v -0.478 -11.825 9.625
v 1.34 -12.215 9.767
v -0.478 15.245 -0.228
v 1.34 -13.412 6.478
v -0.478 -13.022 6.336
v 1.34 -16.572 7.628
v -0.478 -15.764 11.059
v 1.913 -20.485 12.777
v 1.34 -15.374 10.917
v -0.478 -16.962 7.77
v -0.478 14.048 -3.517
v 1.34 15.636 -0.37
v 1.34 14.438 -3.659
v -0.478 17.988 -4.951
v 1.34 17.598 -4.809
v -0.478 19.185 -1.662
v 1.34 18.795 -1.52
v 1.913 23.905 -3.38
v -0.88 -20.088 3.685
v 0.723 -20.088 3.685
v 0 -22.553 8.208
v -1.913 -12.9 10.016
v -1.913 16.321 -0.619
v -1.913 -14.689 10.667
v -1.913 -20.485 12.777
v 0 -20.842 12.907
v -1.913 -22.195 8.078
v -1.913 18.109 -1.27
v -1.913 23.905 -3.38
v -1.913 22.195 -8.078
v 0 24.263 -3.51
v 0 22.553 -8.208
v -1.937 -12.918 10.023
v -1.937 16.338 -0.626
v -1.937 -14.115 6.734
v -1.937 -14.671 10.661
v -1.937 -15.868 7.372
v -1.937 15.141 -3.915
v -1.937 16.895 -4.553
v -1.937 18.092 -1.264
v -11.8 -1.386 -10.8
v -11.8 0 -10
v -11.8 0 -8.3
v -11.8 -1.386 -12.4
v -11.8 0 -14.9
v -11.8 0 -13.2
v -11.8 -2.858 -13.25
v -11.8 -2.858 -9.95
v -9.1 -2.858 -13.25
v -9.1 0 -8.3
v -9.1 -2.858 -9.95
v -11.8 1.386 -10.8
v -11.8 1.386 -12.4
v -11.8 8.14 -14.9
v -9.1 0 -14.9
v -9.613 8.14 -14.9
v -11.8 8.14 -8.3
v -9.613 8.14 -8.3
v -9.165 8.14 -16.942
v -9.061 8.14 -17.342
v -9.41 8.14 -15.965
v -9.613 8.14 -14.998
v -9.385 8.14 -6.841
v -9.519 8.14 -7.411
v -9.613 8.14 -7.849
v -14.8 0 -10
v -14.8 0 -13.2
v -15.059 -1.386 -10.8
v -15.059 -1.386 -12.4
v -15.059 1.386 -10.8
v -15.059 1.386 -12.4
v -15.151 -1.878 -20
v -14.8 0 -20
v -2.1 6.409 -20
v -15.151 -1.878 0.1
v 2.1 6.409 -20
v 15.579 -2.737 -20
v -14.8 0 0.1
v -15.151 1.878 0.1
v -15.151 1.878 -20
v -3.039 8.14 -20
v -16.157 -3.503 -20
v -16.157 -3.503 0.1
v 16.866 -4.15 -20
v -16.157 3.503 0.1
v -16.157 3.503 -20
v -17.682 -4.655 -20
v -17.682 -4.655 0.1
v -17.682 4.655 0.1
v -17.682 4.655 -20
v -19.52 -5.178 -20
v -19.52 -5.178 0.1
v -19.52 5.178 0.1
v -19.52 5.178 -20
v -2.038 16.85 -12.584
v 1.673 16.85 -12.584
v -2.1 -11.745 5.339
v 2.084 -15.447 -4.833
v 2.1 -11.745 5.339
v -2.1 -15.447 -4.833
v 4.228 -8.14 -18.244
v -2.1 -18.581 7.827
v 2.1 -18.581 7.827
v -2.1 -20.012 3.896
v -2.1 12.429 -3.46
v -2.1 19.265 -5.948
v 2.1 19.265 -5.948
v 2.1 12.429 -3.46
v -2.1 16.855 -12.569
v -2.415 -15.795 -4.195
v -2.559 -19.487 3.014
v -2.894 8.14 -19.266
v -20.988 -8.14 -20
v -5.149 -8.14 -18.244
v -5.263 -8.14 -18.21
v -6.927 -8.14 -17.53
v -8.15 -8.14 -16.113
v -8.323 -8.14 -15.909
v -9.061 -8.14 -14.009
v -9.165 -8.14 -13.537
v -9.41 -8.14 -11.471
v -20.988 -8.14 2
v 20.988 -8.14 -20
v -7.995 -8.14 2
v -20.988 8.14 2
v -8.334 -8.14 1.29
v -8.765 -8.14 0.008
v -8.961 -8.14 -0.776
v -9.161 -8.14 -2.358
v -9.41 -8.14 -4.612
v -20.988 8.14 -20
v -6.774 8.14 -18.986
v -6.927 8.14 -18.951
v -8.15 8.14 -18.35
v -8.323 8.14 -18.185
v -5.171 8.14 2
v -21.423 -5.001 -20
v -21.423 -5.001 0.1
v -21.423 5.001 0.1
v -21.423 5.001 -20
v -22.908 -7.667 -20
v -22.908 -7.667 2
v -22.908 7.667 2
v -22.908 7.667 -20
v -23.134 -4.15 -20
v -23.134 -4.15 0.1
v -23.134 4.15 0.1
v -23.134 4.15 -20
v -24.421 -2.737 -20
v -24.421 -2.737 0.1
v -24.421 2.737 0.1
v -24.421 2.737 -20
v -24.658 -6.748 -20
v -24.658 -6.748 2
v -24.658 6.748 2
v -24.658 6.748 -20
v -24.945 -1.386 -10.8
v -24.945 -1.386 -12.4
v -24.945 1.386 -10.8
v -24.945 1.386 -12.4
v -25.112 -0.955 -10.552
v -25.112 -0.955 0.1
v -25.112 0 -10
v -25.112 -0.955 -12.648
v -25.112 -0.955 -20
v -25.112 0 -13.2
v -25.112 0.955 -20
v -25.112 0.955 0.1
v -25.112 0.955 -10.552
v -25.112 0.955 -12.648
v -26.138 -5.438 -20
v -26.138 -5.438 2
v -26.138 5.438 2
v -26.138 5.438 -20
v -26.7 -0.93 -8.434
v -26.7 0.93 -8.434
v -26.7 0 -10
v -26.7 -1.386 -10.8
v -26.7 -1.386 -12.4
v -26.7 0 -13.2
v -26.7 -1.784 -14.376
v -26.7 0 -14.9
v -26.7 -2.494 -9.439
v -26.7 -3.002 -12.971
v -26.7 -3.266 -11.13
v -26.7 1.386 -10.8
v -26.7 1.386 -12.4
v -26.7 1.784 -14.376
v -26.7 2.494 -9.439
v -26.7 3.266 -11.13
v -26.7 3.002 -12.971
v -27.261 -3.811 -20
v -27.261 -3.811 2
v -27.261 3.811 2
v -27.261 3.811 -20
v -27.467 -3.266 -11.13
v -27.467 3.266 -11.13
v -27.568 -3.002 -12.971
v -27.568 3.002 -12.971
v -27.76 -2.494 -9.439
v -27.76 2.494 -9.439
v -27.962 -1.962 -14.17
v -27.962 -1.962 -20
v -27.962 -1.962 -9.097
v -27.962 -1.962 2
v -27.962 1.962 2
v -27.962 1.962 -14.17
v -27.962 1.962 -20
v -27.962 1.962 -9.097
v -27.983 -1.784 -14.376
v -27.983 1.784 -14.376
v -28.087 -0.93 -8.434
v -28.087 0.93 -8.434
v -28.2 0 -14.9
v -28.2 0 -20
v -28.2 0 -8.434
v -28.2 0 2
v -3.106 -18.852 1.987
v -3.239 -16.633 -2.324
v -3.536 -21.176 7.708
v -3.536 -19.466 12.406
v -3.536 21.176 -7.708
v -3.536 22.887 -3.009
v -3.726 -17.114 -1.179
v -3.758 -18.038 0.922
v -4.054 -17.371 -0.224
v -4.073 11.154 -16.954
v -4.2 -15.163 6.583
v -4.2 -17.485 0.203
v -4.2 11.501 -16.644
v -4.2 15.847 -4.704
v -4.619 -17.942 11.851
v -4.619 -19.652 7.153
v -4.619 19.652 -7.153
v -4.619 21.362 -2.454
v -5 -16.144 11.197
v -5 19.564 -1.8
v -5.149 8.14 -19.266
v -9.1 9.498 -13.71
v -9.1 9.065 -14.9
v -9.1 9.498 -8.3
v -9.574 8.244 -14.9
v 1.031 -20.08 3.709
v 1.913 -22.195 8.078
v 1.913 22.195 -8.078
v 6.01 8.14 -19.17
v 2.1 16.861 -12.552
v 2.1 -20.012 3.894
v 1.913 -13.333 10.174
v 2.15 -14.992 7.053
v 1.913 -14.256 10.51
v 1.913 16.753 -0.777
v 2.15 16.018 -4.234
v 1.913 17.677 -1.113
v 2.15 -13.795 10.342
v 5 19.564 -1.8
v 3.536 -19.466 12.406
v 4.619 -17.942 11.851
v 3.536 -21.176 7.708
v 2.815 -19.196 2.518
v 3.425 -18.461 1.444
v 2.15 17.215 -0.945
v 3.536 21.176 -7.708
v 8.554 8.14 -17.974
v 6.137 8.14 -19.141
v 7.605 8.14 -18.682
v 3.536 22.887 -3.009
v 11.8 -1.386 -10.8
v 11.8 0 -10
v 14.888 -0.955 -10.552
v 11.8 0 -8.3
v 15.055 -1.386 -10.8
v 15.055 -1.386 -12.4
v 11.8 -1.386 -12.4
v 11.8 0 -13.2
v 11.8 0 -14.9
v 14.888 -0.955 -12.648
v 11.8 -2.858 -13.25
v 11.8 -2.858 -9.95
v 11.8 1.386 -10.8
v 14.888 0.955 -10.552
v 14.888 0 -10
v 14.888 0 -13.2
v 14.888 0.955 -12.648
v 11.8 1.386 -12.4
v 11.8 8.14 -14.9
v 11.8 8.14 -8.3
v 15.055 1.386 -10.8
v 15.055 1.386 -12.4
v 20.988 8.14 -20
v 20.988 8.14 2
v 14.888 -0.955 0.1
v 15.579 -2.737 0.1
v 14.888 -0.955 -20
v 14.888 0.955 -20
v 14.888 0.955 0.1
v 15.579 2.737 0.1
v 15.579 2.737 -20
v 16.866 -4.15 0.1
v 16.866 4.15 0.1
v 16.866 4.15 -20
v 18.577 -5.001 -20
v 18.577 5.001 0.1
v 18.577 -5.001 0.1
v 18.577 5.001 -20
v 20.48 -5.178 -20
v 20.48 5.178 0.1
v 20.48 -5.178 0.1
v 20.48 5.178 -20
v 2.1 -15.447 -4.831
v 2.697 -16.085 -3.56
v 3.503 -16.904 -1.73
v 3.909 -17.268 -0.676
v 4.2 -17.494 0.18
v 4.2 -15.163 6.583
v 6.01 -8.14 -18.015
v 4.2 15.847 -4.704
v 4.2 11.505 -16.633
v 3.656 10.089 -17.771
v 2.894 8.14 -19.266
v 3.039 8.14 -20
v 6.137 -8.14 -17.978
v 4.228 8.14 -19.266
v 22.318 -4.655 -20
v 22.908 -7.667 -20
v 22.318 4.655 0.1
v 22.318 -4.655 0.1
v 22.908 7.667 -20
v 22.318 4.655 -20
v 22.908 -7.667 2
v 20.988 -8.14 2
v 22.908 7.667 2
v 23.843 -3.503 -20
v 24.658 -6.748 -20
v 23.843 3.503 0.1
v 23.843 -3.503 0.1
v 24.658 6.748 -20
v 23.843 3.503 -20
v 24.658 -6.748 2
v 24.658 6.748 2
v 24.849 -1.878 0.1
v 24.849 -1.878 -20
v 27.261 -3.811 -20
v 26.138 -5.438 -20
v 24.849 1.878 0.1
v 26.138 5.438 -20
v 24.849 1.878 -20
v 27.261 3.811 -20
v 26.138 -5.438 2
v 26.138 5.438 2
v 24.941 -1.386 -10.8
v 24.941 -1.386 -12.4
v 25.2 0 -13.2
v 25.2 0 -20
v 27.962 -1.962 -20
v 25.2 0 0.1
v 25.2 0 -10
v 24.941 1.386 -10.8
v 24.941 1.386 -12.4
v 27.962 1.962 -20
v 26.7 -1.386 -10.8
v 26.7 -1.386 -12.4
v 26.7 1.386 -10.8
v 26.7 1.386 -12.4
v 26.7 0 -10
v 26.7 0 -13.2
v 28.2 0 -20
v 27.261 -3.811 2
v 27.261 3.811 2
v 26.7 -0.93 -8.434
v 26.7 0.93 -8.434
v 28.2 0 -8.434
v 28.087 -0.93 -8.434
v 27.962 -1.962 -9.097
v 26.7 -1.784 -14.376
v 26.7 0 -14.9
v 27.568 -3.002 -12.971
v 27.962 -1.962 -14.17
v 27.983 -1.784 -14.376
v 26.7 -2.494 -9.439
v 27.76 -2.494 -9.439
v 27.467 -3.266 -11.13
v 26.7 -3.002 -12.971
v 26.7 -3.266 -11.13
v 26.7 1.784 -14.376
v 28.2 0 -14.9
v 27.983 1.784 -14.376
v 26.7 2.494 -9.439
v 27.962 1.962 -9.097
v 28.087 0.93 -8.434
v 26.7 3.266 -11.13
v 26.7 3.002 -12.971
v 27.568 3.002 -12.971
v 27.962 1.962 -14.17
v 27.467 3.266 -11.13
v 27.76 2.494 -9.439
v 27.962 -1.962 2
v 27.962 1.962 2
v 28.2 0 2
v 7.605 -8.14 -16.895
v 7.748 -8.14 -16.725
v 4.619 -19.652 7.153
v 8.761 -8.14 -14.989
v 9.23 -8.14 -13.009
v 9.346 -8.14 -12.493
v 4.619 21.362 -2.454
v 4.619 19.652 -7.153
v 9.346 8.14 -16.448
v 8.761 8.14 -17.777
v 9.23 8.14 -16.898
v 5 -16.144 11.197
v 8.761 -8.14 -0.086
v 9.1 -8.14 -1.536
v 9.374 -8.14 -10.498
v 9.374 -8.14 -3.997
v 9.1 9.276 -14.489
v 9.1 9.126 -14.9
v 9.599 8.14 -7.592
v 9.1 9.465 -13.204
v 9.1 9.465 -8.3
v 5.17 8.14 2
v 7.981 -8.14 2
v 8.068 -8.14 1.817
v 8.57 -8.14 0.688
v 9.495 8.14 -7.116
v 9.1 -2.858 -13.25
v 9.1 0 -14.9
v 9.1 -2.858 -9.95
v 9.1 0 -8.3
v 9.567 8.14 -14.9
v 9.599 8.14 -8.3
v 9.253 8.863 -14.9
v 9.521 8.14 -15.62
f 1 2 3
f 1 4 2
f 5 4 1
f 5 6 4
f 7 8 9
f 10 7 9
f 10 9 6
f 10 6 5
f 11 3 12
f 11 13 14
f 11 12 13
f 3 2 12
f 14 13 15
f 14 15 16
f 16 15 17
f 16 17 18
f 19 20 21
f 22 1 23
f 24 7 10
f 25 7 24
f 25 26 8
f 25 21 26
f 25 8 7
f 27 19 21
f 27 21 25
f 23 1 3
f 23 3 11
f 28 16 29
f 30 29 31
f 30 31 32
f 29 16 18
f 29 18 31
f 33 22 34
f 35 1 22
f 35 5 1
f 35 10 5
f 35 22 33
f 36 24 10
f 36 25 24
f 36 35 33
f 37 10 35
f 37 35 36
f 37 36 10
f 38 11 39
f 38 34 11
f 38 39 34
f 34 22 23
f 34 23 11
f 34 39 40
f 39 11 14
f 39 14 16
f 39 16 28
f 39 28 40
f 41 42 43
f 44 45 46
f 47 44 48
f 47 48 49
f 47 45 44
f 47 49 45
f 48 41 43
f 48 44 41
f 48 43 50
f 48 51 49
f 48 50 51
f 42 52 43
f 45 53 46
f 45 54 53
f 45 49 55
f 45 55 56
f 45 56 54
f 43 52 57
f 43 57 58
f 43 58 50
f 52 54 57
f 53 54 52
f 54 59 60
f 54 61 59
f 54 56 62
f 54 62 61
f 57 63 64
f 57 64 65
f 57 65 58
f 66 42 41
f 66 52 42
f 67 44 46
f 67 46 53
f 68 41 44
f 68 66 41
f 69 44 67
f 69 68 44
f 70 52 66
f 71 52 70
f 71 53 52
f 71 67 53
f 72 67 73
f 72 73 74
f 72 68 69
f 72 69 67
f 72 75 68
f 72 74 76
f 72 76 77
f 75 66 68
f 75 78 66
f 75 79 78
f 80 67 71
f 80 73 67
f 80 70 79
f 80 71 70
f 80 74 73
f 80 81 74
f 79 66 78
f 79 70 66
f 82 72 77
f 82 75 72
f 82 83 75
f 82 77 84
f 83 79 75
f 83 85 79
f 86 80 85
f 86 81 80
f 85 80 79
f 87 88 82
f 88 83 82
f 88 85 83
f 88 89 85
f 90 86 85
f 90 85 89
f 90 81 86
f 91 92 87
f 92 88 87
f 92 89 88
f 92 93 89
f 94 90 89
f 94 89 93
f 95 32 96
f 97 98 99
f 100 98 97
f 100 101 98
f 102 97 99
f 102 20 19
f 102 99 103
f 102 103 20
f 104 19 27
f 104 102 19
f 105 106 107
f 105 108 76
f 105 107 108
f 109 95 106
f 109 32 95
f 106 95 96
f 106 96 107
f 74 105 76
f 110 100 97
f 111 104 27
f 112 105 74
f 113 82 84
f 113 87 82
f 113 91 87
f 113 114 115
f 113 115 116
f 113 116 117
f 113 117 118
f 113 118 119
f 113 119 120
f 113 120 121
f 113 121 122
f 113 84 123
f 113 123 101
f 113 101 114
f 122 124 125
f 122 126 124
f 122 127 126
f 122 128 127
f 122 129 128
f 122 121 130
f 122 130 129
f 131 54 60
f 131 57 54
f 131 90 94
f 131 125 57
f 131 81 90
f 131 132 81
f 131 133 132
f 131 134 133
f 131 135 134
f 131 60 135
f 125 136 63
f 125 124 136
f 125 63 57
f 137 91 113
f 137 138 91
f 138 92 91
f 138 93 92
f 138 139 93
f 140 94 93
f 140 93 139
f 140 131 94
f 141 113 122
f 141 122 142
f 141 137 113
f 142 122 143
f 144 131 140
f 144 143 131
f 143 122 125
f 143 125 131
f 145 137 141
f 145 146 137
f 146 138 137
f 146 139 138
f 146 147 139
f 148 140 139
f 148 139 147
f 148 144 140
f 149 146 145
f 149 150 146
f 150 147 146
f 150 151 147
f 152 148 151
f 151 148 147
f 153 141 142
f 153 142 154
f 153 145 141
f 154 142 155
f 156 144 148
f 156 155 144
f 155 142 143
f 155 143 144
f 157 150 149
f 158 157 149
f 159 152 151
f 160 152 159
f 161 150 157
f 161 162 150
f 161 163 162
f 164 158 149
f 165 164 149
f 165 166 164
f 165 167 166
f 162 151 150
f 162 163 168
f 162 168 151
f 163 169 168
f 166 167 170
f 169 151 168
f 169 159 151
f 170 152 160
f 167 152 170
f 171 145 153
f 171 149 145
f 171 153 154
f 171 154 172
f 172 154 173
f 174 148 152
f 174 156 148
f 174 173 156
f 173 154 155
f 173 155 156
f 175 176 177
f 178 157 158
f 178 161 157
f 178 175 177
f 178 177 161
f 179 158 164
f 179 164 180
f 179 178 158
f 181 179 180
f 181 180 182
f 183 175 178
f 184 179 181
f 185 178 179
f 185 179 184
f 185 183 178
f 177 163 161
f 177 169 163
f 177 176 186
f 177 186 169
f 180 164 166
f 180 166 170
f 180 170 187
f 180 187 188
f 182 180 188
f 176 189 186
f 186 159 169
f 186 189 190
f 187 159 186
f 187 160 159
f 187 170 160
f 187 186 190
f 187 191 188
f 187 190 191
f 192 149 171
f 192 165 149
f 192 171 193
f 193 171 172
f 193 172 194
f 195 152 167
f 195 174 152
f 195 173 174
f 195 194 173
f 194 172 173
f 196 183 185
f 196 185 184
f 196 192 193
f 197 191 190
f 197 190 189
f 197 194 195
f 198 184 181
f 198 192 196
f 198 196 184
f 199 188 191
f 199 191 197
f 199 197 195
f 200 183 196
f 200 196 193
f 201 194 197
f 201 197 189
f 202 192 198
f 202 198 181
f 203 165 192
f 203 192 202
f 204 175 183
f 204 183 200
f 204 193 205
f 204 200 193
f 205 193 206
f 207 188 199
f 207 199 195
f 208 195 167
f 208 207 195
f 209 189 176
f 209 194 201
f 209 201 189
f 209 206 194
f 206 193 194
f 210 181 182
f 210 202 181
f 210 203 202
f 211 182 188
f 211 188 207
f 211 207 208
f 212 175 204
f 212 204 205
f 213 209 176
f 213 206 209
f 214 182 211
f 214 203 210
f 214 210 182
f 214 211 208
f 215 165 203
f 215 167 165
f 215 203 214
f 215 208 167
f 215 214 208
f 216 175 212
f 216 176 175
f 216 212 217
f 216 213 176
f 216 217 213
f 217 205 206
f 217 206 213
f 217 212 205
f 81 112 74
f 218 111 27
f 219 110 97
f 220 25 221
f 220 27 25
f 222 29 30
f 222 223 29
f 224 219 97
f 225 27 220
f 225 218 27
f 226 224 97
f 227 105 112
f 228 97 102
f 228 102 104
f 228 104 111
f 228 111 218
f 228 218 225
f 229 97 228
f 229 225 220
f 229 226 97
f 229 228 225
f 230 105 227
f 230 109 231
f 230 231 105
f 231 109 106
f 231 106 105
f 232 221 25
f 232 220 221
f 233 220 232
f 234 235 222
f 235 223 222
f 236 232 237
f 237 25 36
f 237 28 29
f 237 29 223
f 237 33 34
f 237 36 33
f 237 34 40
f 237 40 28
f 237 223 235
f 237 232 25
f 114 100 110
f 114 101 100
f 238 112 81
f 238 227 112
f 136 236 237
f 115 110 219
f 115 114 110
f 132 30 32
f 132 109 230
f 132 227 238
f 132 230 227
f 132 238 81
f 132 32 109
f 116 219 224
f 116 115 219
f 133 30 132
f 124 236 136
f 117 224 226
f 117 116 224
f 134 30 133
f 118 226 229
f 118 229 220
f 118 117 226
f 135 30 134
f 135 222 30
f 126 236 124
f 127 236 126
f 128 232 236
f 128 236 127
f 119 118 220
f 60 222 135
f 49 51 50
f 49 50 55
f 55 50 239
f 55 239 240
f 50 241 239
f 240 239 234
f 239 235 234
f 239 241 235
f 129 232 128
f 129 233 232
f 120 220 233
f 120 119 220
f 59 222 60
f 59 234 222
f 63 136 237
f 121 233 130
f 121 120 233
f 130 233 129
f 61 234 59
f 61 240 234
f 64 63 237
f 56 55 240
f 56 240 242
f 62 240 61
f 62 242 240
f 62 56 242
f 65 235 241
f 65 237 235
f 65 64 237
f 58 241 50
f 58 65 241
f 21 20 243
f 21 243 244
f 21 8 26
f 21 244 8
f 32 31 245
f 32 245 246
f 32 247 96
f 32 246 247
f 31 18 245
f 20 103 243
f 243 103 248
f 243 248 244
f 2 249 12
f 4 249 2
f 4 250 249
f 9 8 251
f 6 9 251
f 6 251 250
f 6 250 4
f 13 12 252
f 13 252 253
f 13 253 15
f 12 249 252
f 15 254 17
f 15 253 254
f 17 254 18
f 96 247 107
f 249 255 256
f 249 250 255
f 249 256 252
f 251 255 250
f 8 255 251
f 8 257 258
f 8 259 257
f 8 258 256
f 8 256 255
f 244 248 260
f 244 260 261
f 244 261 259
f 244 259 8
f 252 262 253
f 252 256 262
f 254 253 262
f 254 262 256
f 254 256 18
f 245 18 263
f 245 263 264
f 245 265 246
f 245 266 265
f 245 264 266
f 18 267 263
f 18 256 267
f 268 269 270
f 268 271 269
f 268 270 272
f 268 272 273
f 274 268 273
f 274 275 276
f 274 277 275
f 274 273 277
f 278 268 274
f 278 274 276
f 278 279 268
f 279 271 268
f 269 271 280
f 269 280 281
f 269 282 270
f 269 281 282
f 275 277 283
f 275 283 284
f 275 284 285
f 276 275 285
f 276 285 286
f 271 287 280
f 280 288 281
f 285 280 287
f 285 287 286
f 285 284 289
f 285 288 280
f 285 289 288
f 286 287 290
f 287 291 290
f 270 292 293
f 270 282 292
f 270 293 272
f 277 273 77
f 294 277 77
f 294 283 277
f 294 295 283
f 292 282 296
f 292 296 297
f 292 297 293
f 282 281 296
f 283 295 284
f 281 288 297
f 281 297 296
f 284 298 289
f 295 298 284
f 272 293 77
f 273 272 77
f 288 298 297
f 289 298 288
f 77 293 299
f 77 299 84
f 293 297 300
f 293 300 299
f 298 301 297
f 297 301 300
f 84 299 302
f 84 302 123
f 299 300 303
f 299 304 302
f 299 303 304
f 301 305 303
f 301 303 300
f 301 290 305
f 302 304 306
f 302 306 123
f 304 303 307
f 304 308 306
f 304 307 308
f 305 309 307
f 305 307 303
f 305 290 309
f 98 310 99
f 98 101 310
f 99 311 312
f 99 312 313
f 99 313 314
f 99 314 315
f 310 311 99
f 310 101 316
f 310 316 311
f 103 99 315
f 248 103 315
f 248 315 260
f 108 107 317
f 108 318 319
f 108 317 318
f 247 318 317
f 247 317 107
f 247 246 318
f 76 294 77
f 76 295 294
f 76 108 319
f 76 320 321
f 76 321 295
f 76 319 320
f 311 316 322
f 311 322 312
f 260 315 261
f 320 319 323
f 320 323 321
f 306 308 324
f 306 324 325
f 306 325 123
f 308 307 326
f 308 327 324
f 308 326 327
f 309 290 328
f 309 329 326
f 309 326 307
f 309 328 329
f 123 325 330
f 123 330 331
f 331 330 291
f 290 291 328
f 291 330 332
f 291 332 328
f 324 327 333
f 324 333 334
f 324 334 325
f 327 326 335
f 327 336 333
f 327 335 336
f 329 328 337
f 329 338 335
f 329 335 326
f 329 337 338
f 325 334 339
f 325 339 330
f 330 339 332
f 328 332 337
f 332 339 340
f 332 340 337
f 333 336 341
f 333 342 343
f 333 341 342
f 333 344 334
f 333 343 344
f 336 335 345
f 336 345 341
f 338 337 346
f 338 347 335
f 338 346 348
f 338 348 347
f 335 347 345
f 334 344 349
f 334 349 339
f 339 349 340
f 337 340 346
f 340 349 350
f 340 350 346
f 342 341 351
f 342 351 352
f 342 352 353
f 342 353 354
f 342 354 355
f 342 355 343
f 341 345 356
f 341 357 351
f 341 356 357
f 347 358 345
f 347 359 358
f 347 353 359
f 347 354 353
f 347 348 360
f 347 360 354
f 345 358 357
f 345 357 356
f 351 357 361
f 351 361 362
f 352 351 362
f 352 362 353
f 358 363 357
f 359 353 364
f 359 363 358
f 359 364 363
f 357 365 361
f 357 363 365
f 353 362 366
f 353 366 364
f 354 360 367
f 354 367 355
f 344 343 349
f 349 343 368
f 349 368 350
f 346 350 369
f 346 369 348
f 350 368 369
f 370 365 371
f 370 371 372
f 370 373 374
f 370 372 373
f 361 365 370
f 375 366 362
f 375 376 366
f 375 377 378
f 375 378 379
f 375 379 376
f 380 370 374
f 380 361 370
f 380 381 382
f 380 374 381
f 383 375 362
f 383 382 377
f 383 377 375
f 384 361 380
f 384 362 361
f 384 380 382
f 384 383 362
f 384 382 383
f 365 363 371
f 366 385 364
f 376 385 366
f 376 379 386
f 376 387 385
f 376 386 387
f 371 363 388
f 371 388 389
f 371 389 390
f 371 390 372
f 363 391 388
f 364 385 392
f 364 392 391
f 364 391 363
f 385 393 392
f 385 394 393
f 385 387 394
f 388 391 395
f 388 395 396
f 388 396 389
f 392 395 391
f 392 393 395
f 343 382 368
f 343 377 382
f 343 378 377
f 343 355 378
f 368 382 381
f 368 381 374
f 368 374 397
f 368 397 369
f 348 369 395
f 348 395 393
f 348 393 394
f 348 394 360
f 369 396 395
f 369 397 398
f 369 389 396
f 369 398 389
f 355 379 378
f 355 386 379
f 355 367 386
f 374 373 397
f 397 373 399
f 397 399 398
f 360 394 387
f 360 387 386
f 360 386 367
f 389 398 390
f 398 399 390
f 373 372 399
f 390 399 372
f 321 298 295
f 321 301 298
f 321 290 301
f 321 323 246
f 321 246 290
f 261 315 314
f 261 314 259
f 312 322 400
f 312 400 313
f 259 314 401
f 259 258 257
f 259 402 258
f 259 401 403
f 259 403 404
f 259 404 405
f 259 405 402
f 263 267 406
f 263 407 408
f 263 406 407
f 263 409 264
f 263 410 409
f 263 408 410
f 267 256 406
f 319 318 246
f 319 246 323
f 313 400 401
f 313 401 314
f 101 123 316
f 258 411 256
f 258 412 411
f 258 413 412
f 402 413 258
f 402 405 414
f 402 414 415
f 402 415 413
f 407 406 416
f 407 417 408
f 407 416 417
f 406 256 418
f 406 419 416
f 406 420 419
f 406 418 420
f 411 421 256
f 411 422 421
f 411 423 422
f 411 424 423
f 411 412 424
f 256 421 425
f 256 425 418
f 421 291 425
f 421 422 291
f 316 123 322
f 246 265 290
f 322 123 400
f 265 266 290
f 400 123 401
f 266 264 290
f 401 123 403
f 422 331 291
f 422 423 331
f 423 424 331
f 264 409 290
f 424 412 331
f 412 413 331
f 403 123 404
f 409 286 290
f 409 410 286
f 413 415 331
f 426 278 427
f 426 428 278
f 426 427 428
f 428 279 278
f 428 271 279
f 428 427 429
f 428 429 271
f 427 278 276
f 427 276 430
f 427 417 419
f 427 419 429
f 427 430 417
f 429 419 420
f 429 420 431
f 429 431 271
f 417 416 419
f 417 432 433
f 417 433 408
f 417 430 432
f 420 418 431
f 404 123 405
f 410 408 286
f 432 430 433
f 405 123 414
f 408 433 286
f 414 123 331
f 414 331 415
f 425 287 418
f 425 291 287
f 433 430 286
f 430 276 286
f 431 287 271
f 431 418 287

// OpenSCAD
// file: lib/igus.scad
include <../../parameters.scad>


module efsm_12(){
    translate([0, 0, -(bearing_efsm_12_ag - bearing_efsm_12_B/2)]){
        translate([-bearing_efsm_12_h/2, -bearing_efsm_12_h/2, 0])
            cube([bearing_efsm_12_h, bearing_efsm_12_h, bearing_efsm_12_a1]);
        difference(){
            union(){
                intersection(){
                    translate([0,0, bearing_efsm_12_ag - bearing_efsm_12_B/2])
                        sphere(d=18, $fn = 50);
                    translate([0,0,-15])
                        cylinder(h = 30, d = 20);
                }
            }
            translate([0, 0, -15])
                cylinder(h=30, d=12);
        }
    }
}


module efsm_8(){
    translate([-33/2, -33/2, 0])
        cube([33, 33, 5.5]);
    translate([0,0,8.5])
        cylinder(h = 2, d1 = 18, d2 = 15);
    translate([0,0,6.5])
        cylinder(h = 7.94/2, d = 2);
    translate([0, 0, 6.5])
        sphere(r=3, $fn = 50);
}


module kstm_05(){
    import("../../STL/external/igus/KSTM_05_1.stl", convexity = 5);
}

module kstm_06(){
    import("../../STL/external/igus/KSTM_06_2.stl", convexity = 5);
}

module kstm_08(){
    import("../../STL/external/igus/KSTM_08_3.stl", convexity = 5);
}

module kstm_10(){
    import("../../STL/external/igus/KSTM_10_4.stl", convexity = 5);
}


data_kstm_center_height = [[5,7],[6,10],[8,10],[10,14]];
function kstm_center_height(type) = data_kstm_center_height[search(type, data_kstm_center_height)[0]][1];

data_kstm_hole_distance = [[5,25], [6,33], [8,33], [10,46], [12,46]];
function kstm_hole_distance(type) = data_kstm_hole_distance[search(type, data_kstm_hole_distance)[0]][1];

data_kstm_thickness = [[5,25], [6,33], [8,33], [10,46], [12,46]];
function kstm_thickness(type) = data_kstm_thickness[search(type, data_kstm_thickness)[0]][1];


translate([0, 0,  kstm_center_height(5)]) kstm_05();
translate([0, 20, kstm_center_height(6)]) kstm_06();
translate([0, 40, kstm_center_height(8)]) kstm_08();
translate([0, 60, kstm_center_height(10)]) kstm_10();
// main file
include <../parameters.scad>
use <lib/igus.scad>

wall = 6;
length = 47;
space = 1.5;
kstm = 8;
bolt_length = 30;
bolt_support_length = 15-M3_nut_height;
bolt_bearing_length = 15;       // Delka M4 sroubu skrze prirubu

pipe_recessed = 20;
kstm_offset = 5;

module 888_2016(){


    difference(){
        union(){
            // otvory pro tyce
            hull(){
                translate([-beam_patern/2, 0, -pipe_recessed])
                    cylinder(d =  tube_for_undercarriage_outer_diameter + 6, h = pipe_recessed + 2);
                translate([beam_patern/2, 0, -pipe_recessed])
                    cylinder(d =  tube_for_undercarriage_outer_diameter + 6, h = pipe_recessed + 2);
            }

            // cast pro prirubove lozisko
            hull(){
                translate([-beam_patern/8, 0, -pipe_recessed])
                    cylinder(d =  tube_for_undercarriage_outer_diameter + 4, h = pipe_recessed/2);
                translate([beam_patern/8, 0, -pipe_recessed])
                    cylinder(d =  tube_for_undercarriage_outer_diameter + 4, h = pipe_recessed/2);

                rotate([-20, 0, 0]){
                    translate([0, 38/2, -kstm_offset + 5])
                        cylinder(d = 10, h = kstm_offset);
                    translate([0, -38/2, -kstm_offset + 5])
                        cylinder(d = 10, h = kstm_offset);
                }
            }
        }

        // Otvory pro pricne tyce
        translate([-beam_patern/2, 0, -pipe_recessed - 0.1])
            cylinder(d =  tube_for_undercarriage_outer_diameter, h = pipe_recessed+0.2);
        translate([beam_patern/2, 0, -pipe_recessed - 0.1])
            cylinder(d =  tube_for_undercarriage_outer_diameter, h = pipe_recessed+0.2);

        // Otvory pro srouby do loziska

        rotate([-20, 0, 0])
        translate([0, 0, 5]){
            translate([0, 33/2, -3.5])
                cylinder(d = M4_screw_diameter, h = 10);
            translate([0, -33/2, -3.5])
                cylinder(d = M4_screw_diameter, h = 10);

            translate([0, 33/2, -9-15])
                cylinder(d = M4_nut_diameter, h = 20, $fn = 6);
            translate([0, -33/2, -9-15])
                cylinder(d = M4_nut_diameter, h = 20, $fn = 6);
        }

        // diry pro sroub skrz tyce
        for (i=[0, 1]) mirror([i, 0, 0]){
            translate([beam_patern/2 + tube_for_undercarriage_outer_diameter/2 + 5, 0, -M3_screw_diameter/2 - 10])
                rotate([0, -90, 0])
                    cylinder(d = M3_screw_diameter, h = 20);

            translate([beam_patern/2 + tube_for_undercarriage_outer_diameter/2 +1.5 , 0, -M3_screw_diameter/2 - 10])
                rotate([0, 90, 0])
                    cylinder(d = M3_nut_diameter, h = 20);

            translate([beam_patern/2 - tube_for_undercarriage_outer_diameter/2 -3, 0, -M3_screw_diameter/2 - 10])
                rotate([0, -90, 0])
                    cylinder(d = M3_nut_diameter, h = M3_nut_height, $fn = 6);

            translate([beam_patern/2 - tube_for_undercarriage_outer_diameter/2 -3, 0, -M3_screw_diameter/2 - 10 - M3_nut_diameter/2])
                rotate([0, -90, 0])
                    cube([M3_nut_diameter, 20, M3_nut_height]);
        }

    }
}


module 888_2016_drill(){
    screw_from_end = 10+0.5;                    // Vzdalenost sroubu od konce trubky

    difference(){
        translate([-tube_for_undercarriage_outer_diameter/2-5, -tube_for_undercarriage_outer_diameter/2-10, 0])
            cube([tube_for_undercarriage_outer_diameter + 10 + beam_patern, tube_for_undercarriage_outer_diameter+20, 2 + pipe_recessed]);

        translate([beam_patern, 0, 2+global_clearance])
            cylinder(d = tube_for_undercarriage_outer_diameter, h = 100);

        translate([0, 0, 2+global_clearance])
            cylinder(d = tube_for_undercarriage_outer_diameter, h = 100);

        translate([0, 0, 10+3 + global_clearance]) rotate([90, 0, 0]){
            cylinder(d = M3_screw_diameter, h = 50, center = true, $fn = 60);
            translate([beam_patern, 0, 0])
                cylinder(d = M3_screw_diameter, h = 50, center = true, $fn = 60);
        }

        rotate([90, 0, 0]) translate([beam_patern/2, 14, tube_for_undercarriage_outer_diameter/2 + 10-0.1]) linear_extrude(0.2) text("888_2016", halign = "center", size = 6);
        rotate([90, 0, 0]) translate([beam_patern/2, 5, tube_for_undercarriage_outer_diameter/2 + 10-0.1]) linear_extrude(0.2) text("drill end", halign = "center", size = 6);
    }
}


module 888_2016_drill_center(){

    difference(){
        translate([-tube_for_undercarriage_outer_diameter/2-5, -tube_for_undercarriage_outer_diameter/2-10, 0])
            cube([tube_for_undercarriage_outer_diameter + 10 + beam_patern, tube_for_undercarriage_outer_diameter+20,  25]);

        translate([beam_patern, 0, -global_clearance])
            cylinder(d = tube_for_undercarriage_outer_diameter, h = 100);

        translate([0, 0, -global_clearance])
            cylinder(d = tube_for_undercarriage_outer_diameter, h = 100);

        translate([0, 0, 25/2]) rotate([90, 0, 0]){
            cylinder(d = M3_screw_diameter, h = 50, center = true, $fn = 60);
            translate([beam_patern, 0, 0])
                cylinder(d = M3_screw_diameter, h = 50, center = true, $fn = 60);
            rotate([0, 90, 0])
                cylinder(d = M3_screw_diameter, h = 200, center = true, $fn = 60);
        }

        rotate([90, 0, 0]) translate([beam_patern/2, 14, tube_for_undercarriage_outer_diameter/2 + 10-0.1]) linear_extrude(0.2) text("888_2016", halign = "center", size = 6);
        rotate([90, 0, 0]) translate([beam_patern/2, 5, tube_for_undercarriage_outer_diameter/2 + 10-0.1]) linear_extrude(0.2) text("drill center", halign = "center", size = 6);
    }
}


//translate([0, 0, pipe_recessed])
888_2016();

//translate([0, 50, 0])    888_2016_drill();
//translate([0, -50, 0]) 888_2016_drill_center();
